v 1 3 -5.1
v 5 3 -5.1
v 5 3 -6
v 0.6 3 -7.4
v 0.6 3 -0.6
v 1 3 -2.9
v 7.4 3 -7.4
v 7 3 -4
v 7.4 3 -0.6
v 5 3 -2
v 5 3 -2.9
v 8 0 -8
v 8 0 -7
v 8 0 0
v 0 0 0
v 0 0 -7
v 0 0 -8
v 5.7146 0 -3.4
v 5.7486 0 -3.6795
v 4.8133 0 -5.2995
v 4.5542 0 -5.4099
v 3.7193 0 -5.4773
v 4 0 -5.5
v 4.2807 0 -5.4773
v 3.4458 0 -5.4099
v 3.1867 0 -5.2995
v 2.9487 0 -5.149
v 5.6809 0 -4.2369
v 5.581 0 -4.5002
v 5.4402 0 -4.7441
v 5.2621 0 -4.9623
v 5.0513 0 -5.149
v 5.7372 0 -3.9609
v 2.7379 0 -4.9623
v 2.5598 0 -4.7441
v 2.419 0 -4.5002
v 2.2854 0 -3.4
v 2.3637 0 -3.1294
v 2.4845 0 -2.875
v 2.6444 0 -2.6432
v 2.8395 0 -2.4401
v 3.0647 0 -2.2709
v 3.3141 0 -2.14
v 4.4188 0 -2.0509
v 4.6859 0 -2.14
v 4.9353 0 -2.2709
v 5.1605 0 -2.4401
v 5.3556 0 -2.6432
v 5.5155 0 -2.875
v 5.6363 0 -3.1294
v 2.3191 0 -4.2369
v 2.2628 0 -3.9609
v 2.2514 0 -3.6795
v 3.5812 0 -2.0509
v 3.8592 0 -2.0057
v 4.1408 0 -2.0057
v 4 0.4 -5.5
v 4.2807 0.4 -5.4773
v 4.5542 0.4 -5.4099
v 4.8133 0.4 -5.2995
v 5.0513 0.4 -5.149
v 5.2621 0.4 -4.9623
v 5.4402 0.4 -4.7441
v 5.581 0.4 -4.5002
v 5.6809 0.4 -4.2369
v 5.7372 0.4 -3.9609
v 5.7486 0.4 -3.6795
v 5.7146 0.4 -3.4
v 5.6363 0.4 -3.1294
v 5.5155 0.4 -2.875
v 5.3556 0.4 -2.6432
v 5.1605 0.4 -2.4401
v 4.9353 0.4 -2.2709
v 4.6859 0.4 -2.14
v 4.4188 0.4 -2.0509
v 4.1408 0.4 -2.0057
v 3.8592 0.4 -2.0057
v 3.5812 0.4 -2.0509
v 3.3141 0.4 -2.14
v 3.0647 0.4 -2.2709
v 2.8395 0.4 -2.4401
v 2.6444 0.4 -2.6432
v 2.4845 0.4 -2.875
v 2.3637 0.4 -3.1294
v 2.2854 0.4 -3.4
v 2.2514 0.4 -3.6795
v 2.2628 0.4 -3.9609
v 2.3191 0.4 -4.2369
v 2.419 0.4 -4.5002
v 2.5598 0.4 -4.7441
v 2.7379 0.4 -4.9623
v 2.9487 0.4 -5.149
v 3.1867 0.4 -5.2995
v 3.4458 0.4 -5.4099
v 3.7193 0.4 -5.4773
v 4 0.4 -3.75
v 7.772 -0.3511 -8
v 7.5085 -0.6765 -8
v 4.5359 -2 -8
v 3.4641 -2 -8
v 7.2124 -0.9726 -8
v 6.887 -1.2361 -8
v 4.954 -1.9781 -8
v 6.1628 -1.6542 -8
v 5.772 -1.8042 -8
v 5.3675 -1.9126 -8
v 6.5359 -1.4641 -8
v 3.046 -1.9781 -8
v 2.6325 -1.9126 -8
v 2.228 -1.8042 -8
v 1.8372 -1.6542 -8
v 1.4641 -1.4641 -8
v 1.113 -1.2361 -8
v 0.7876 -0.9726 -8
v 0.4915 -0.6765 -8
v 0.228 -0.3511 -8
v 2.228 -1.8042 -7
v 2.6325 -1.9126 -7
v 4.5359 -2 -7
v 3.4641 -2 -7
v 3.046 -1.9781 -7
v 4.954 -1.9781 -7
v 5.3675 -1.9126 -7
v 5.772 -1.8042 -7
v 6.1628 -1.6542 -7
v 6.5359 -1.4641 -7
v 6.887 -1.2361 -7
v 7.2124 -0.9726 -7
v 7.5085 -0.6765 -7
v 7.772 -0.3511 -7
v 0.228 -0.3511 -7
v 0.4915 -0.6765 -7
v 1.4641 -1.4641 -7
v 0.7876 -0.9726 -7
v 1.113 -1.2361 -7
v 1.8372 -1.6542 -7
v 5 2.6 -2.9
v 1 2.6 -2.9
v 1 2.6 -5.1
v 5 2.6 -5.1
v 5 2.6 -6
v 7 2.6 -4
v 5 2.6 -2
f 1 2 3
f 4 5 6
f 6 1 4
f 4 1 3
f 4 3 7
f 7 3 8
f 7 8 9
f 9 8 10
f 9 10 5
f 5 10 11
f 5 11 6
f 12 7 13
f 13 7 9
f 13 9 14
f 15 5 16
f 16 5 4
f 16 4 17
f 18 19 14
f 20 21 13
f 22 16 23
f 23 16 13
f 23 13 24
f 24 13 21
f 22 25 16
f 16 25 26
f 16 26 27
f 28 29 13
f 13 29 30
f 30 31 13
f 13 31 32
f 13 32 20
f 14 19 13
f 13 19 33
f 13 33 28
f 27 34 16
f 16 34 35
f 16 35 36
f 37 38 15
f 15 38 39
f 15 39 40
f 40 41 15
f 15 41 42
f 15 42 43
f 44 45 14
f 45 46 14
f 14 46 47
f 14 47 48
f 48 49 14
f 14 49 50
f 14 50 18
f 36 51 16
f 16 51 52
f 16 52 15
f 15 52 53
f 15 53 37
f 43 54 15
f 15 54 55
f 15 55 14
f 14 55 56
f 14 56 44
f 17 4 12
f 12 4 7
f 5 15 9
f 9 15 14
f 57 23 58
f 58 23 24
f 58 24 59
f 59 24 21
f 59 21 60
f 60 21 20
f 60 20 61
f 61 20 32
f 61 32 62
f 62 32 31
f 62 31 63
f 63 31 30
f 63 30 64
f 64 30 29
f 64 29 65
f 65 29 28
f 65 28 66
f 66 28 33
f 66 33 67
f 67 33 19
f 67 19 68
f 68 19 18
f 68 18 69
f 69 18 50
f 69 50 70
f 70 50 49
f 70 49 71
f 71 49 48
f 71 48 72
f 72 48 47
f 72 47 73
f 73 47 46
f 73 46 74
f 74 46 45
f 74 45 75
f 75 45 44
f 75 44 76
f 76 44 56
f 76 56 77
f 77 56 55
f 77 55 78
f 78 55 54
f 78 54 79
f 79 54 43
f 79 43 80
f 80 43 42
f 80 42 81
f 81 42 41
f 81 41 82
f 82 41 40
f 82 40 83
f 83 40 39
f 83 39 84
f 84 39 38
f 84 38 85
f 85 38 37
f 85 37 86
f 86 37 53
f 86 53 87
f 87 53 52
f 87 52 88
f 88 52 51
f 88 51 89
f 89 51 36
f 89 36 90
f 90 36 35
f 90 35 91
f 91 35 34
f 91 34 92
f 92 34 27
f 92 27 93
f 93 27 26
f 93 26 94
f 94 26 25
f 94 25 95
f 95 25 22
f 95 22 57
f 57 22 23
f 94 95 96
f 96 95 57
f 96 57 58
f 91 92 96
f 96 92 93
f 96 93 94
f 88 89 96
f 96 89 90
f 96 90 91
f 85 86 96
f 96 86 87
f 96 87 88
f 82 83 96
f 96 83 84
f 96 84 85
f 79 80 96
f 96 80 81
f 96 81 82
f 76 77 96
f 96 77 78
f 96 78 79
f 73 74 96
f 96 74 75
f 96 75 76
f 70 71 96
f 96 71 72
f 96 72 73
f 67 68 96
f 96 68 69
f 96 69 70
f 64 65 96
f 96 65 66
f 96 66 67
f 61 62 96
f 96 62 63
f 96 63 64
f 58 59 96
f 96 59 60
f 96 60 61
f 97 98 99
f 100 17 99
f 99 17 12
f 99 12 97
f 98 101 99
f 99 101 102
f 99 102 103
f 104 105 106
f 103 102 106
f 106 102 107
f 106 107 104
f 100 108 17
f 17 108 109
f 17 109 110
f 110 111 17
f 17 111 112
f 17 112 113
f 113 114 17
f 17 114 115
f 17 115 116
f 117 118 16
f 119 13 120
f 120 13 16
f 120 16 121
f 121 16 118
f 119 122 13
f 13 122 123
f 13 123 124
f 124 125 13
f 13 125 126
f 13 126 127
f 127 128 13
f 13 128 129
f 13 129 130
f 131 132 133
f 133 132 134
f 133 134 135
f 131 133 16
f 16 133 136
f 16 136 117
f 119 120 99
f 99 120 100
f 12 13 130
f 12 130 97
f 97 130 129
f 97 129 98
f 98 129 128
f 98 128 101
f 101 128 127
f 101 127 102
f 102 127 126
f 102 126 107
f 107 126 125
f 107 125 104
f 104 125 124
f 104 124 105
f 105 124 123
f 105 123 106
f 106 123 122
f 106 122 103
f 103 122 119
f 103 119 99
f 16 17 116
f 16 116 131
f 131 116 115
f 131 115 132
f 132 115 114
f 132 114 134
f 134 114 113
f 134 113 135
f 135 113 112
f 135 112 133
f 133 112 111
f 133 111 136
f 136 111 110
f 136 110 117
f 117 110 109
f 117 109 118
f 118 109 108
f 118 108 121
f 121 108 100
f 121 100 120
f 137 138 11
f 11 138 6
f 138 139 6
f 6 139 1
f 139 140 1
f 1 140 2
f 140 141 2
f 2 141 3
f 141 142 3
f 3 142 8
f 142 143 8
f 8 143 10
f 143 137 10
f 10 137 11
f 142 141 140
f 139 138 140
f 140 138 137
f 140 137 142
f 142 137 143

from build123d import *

# Parameters (mm, degrees)
SKETCH1_W               = 8
SKETCH1_H               = 8
BOSS_EXTRUDE1_DEPTH     = 3
CUT_EXTRUDE1_DEPTH      = 12.704699911
CUT_EXTRUDE1_DEPTH_BACK = 12.704699911
CUT_EXTRUDE2_DEPTH      = 11
SKETCH4_R               = 1.75
CUT_EXTRUDE3_DEPTH      = 0.4
SKETCH5_W               = 8
SKETCH5_H               = 1
BOSS_EXTRUDE2_DEPTH     = 2
FILLET1_R               = 4
SKETCH6_W               = 4
SKETCH6_H               = 2.2
CUT_EXTRUDE4_DEPTH      = 0.4


with BuildPart() as part:
    # Sketch1 → Boss-Extrude1 (new body)
    with BuildSketch(Plane(origin=(0, 0, 0), x_dir=(1, 0, 0), z_dir=(0, 1, 0))):
        with Locations((4, 4)):
            Rectangle(SKETCH1_W, SKETCH1_H)
    extrude(amount=BOSS_EXTRUDE1_DEPTH)

    # Sketch2 → Cut-Extrude1 (cut, two sides: drawn at the far end of the back side and taken through both)
    with BuildSketch(Plane.XY.offset(-CUT_EXTRUDE1_DEPTH_BACK)):
        Polygon((0, 0), (0.6, 3), (0, 3), align=None)
        Polygon((8, 0), (7.4, 3), (8, 3), align=None)
    extrude(amount=CUT_EXTRUDE1_DEPTH + CUT_EXTRUDE1_DEPTH_BACK, mode=Mode.SUBTRACT)

    # Sketch3 → Cut-Extrude2 (cut)
    with BuildSketch(Plane(origin=(0, 0, 0), x_dir=(0, 0, -1), z_dir=(1, 0, 0))):
        Polygon((0, 0), (0.6, 3), (0, 3), align=None)
        Polygon((8, 3), (7.4, 3), (8, 0), align=None)
    extrude(amount=CUT_EXTRUDE2_DEPTH, mode=Mode.SUBTRACT)

    # Sketch4 → Cut-Extrude3 (cut)
    with BuildSketch(Plane.XZ):
        with Locations(Location((4, -3.75, 0), (0, 0, 270))):
            Circle(SKETCH4_R)
    extrude(amount=-CUT_EXTRUDE3_DEPTH, mode=Mode.SUBTRACT)

    # Sketch5 → Boss-Extrude2 (add)
    with BuildSketch(Plane.XZ):
        with Locations((4, -7.5)):
            Rectangle(SKETCH5_W, SKETCH5_H)
    extrude(amount=BOSS_EXTRUDE2_DEPTH)

    # Fillet1
    # the kernel refuses this fillet: 4 mm, written as the material it takes off along each edge
    with BuildSketch(Plane(origin=(8, -2, -16.660254038), x_dir=(0, 1, 0), z_dir=(0, 0, 1)), Plane(origin=(0, -2, 1.660254038), x_dir=(0, 1, 0), z_dir=(0, 0, -1))) as fillet1_piece_1:
        with BuildLine():
            CenterArc((4, 3.464101615), FILLET1_R, 180, 60)
            Line((0, 3.464101615), (-0.08, 3.464101615))
            Line((-0.08, 3.464101615), (-0.08, 0))
            Line((-0.08, 0), (0, -0.08))
            ThreePointArc((0, -0.08), (1, -0.08), (1.96, -0.069282032))
            Line((1.96, -0.069282032), (2, 0))
        make_face()
    extrude(amount=18.320508076, mode=Mode.SUBTRACT)

    # Sketch6 → Cut-Extrude4 (cut)
    with BuildSketch(Plane(origin=(0, 3, 0), x_dir=(1, 0, 0), z_dir=(0, 1, 0))):
        with Locations((3, 4)):
            Rectangle(SKETCH6_W, SKETCH6_H)
        Polygon((5, 2), (5, 2.9), (5, 5.1), (5, 6), (7, 4), align=None)
    extrude(amount=-CUT_EXTRUDE4_DEPTH, mode=Mode.SUBTRACT)


solid = part.part
